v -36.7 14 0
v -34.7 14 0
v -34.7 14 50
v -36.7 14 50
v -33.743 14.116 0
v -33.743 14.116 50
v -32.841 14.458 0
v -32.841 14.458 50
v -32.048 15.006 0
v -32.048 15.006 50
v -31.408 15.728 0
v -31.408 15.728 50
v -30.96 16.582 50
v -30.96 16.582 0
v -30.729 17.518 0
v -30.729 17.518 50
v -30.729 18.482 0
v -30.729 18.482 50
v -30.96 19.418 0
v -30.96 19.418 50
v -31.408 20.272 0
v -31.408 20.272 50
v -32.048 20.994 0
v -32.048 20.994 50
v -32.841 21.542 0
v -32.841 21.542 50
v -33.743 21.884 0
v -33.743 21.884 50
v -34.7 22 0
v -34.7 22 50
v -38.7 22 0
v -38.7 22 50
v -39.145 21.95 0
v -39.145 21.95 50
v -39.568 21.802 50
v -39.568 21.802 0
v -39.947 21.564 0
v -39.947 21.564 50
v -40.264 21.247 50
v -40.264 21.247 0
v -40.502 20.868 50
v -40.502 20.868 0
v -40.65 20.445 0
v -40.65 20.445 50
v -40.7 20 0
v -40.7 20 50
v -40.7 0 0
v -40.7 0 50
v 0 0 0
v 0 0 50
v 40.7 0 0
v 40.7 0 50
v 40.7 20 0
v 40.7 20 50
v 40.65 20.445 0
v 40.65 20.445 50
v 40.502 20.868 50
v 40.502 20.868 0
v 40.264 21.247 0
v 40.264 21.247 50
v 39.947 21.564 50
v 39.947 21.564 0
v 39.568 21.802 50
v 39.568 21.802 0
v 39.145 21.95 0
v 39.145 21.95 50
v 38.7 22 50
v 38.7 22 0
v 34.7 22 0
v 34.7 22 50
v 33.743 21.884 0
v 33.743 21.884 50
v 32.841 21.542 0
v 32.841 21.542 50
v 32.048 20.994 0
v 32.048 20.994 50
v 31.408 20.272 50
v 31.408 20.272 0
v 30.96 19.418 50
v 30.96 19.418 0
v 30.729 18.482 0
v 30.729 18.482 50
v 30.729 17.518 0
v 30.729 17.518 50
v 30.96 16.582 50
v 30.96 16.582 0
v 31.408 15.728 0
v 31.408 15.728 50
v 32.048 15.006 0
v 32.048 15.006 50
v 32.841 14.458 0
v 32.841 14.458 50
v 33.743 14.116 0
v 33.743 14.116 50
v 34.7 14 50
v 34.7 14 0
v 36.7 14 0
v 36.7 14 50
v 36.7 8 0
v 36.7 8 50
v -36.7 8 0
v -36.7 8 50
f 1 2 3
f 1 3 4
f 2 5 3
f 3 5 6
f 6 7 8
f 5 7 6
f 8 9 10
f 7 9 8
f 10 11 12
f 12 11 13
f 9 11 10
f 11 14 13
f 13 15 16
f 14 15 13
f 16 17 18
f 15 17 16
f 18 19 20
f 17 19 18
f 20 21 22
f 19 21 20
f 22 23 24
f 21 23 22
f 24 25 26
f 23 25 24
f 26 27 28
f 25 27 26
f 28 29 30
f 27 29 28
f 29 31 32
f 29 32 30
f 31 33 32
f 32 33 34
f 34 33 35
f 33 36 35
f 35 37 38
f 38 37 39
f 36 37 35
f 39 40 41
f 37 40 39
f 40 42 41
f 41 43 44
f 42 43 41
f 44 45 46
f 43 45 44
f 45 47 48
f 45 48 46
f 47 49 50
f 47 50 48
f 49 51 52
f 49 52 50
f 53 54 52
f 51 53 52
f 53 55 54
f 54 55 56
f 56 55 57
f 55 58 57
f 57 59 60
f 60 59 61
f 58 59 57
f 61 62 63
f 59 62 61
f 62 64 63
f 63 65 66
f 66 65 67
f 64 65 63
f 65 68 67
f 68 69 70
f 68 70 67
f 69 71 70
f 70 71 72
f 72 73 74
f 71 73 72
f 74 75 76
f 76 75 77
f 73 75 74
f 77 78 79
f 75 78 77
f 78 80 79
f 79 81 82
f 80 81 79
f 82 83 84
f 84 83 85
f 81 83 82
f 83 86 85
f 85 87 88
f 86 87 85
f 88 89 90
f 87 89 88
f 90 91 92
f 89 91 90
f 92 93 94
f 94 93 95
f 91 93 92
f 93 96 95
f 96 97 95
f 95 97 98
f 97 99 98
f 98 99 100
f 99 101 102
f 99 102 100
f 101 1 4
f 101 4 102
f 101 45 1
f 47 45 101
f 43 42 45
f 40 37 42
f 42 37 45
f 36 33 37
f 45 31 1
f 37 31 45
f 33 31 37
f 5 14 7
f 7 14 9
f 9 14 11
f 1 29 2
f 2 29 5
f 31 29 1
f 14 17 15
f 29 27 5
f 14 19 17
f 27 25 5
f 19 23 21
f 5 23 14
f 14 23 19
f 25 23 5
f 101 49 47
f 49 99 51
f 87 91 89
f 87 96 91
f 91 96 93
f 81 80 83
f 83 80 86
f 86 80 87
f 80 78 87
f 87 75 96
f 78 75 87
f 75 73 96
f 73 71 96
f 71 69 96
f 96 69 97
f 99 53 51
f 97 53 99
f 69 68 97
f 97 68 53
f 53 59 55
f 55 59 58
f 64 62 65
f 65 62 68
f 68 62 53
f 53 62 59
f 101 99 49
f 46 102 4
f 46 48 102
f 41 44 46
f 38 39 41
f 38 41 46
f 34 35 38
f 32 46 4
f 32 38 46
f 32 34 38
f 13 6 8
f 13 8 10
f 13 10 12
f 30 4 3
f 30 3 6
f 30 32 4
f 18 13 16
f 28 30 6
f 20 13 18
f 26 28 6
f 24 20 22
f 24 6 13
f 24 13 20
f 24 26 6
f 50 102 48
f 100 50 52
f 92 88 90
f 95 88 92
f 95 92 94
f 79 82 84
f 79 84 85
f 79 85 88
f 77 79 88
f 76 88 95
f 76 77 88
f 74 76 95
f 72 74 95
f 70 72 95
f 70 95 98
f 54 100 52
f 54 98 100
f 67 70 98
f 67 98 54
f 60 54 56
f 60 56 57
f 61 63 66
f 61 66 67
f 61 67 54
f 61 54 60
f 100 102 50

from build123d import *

# Parameters (mm, degrees)
PAD_DEPTH = 50


with BuildPart() as part:
    # Sketch → Pad (new body)
    with BuildSketch(Plane.XY):
        with BuildLine():
            ThreePointArc((-34.7, 14), (-30.7, 18), (-34.7, 22))
            Line((-38.7, 22), (-34.7, 22))
            ThreePointArc((-38.7, 22), (-40.114214, 21.414214), (-40.7, 20))
            Line((-40.7, 0), (-40.7, 20))
            Line((0, 0), (-40.7, 0))
            Line((40.7, 0), (0, 0))
            Line((40.7, 20), (40.7, 0))
            ThreePointArc((40.7, 20), (40.114214, 21.414214), (38.7, 22))
            Line((34.7, 22), (38.7, 22))
            ThreePointArc((34.7, 22), (30.7, 18), (34.7, 14))
            Line((34.7, 14), (36.7, 14))
            Line((36.7, 14), (36.7, 8))
            Line((-36.7, 8), (36.7, 8))
            Line((-36.7, 14), (-36.7, 8))
            Line((-34.7, 14), (-36.7, 14))
        make_face()
    extrude(amount=PAD_DEPTH)


solid = part.part
